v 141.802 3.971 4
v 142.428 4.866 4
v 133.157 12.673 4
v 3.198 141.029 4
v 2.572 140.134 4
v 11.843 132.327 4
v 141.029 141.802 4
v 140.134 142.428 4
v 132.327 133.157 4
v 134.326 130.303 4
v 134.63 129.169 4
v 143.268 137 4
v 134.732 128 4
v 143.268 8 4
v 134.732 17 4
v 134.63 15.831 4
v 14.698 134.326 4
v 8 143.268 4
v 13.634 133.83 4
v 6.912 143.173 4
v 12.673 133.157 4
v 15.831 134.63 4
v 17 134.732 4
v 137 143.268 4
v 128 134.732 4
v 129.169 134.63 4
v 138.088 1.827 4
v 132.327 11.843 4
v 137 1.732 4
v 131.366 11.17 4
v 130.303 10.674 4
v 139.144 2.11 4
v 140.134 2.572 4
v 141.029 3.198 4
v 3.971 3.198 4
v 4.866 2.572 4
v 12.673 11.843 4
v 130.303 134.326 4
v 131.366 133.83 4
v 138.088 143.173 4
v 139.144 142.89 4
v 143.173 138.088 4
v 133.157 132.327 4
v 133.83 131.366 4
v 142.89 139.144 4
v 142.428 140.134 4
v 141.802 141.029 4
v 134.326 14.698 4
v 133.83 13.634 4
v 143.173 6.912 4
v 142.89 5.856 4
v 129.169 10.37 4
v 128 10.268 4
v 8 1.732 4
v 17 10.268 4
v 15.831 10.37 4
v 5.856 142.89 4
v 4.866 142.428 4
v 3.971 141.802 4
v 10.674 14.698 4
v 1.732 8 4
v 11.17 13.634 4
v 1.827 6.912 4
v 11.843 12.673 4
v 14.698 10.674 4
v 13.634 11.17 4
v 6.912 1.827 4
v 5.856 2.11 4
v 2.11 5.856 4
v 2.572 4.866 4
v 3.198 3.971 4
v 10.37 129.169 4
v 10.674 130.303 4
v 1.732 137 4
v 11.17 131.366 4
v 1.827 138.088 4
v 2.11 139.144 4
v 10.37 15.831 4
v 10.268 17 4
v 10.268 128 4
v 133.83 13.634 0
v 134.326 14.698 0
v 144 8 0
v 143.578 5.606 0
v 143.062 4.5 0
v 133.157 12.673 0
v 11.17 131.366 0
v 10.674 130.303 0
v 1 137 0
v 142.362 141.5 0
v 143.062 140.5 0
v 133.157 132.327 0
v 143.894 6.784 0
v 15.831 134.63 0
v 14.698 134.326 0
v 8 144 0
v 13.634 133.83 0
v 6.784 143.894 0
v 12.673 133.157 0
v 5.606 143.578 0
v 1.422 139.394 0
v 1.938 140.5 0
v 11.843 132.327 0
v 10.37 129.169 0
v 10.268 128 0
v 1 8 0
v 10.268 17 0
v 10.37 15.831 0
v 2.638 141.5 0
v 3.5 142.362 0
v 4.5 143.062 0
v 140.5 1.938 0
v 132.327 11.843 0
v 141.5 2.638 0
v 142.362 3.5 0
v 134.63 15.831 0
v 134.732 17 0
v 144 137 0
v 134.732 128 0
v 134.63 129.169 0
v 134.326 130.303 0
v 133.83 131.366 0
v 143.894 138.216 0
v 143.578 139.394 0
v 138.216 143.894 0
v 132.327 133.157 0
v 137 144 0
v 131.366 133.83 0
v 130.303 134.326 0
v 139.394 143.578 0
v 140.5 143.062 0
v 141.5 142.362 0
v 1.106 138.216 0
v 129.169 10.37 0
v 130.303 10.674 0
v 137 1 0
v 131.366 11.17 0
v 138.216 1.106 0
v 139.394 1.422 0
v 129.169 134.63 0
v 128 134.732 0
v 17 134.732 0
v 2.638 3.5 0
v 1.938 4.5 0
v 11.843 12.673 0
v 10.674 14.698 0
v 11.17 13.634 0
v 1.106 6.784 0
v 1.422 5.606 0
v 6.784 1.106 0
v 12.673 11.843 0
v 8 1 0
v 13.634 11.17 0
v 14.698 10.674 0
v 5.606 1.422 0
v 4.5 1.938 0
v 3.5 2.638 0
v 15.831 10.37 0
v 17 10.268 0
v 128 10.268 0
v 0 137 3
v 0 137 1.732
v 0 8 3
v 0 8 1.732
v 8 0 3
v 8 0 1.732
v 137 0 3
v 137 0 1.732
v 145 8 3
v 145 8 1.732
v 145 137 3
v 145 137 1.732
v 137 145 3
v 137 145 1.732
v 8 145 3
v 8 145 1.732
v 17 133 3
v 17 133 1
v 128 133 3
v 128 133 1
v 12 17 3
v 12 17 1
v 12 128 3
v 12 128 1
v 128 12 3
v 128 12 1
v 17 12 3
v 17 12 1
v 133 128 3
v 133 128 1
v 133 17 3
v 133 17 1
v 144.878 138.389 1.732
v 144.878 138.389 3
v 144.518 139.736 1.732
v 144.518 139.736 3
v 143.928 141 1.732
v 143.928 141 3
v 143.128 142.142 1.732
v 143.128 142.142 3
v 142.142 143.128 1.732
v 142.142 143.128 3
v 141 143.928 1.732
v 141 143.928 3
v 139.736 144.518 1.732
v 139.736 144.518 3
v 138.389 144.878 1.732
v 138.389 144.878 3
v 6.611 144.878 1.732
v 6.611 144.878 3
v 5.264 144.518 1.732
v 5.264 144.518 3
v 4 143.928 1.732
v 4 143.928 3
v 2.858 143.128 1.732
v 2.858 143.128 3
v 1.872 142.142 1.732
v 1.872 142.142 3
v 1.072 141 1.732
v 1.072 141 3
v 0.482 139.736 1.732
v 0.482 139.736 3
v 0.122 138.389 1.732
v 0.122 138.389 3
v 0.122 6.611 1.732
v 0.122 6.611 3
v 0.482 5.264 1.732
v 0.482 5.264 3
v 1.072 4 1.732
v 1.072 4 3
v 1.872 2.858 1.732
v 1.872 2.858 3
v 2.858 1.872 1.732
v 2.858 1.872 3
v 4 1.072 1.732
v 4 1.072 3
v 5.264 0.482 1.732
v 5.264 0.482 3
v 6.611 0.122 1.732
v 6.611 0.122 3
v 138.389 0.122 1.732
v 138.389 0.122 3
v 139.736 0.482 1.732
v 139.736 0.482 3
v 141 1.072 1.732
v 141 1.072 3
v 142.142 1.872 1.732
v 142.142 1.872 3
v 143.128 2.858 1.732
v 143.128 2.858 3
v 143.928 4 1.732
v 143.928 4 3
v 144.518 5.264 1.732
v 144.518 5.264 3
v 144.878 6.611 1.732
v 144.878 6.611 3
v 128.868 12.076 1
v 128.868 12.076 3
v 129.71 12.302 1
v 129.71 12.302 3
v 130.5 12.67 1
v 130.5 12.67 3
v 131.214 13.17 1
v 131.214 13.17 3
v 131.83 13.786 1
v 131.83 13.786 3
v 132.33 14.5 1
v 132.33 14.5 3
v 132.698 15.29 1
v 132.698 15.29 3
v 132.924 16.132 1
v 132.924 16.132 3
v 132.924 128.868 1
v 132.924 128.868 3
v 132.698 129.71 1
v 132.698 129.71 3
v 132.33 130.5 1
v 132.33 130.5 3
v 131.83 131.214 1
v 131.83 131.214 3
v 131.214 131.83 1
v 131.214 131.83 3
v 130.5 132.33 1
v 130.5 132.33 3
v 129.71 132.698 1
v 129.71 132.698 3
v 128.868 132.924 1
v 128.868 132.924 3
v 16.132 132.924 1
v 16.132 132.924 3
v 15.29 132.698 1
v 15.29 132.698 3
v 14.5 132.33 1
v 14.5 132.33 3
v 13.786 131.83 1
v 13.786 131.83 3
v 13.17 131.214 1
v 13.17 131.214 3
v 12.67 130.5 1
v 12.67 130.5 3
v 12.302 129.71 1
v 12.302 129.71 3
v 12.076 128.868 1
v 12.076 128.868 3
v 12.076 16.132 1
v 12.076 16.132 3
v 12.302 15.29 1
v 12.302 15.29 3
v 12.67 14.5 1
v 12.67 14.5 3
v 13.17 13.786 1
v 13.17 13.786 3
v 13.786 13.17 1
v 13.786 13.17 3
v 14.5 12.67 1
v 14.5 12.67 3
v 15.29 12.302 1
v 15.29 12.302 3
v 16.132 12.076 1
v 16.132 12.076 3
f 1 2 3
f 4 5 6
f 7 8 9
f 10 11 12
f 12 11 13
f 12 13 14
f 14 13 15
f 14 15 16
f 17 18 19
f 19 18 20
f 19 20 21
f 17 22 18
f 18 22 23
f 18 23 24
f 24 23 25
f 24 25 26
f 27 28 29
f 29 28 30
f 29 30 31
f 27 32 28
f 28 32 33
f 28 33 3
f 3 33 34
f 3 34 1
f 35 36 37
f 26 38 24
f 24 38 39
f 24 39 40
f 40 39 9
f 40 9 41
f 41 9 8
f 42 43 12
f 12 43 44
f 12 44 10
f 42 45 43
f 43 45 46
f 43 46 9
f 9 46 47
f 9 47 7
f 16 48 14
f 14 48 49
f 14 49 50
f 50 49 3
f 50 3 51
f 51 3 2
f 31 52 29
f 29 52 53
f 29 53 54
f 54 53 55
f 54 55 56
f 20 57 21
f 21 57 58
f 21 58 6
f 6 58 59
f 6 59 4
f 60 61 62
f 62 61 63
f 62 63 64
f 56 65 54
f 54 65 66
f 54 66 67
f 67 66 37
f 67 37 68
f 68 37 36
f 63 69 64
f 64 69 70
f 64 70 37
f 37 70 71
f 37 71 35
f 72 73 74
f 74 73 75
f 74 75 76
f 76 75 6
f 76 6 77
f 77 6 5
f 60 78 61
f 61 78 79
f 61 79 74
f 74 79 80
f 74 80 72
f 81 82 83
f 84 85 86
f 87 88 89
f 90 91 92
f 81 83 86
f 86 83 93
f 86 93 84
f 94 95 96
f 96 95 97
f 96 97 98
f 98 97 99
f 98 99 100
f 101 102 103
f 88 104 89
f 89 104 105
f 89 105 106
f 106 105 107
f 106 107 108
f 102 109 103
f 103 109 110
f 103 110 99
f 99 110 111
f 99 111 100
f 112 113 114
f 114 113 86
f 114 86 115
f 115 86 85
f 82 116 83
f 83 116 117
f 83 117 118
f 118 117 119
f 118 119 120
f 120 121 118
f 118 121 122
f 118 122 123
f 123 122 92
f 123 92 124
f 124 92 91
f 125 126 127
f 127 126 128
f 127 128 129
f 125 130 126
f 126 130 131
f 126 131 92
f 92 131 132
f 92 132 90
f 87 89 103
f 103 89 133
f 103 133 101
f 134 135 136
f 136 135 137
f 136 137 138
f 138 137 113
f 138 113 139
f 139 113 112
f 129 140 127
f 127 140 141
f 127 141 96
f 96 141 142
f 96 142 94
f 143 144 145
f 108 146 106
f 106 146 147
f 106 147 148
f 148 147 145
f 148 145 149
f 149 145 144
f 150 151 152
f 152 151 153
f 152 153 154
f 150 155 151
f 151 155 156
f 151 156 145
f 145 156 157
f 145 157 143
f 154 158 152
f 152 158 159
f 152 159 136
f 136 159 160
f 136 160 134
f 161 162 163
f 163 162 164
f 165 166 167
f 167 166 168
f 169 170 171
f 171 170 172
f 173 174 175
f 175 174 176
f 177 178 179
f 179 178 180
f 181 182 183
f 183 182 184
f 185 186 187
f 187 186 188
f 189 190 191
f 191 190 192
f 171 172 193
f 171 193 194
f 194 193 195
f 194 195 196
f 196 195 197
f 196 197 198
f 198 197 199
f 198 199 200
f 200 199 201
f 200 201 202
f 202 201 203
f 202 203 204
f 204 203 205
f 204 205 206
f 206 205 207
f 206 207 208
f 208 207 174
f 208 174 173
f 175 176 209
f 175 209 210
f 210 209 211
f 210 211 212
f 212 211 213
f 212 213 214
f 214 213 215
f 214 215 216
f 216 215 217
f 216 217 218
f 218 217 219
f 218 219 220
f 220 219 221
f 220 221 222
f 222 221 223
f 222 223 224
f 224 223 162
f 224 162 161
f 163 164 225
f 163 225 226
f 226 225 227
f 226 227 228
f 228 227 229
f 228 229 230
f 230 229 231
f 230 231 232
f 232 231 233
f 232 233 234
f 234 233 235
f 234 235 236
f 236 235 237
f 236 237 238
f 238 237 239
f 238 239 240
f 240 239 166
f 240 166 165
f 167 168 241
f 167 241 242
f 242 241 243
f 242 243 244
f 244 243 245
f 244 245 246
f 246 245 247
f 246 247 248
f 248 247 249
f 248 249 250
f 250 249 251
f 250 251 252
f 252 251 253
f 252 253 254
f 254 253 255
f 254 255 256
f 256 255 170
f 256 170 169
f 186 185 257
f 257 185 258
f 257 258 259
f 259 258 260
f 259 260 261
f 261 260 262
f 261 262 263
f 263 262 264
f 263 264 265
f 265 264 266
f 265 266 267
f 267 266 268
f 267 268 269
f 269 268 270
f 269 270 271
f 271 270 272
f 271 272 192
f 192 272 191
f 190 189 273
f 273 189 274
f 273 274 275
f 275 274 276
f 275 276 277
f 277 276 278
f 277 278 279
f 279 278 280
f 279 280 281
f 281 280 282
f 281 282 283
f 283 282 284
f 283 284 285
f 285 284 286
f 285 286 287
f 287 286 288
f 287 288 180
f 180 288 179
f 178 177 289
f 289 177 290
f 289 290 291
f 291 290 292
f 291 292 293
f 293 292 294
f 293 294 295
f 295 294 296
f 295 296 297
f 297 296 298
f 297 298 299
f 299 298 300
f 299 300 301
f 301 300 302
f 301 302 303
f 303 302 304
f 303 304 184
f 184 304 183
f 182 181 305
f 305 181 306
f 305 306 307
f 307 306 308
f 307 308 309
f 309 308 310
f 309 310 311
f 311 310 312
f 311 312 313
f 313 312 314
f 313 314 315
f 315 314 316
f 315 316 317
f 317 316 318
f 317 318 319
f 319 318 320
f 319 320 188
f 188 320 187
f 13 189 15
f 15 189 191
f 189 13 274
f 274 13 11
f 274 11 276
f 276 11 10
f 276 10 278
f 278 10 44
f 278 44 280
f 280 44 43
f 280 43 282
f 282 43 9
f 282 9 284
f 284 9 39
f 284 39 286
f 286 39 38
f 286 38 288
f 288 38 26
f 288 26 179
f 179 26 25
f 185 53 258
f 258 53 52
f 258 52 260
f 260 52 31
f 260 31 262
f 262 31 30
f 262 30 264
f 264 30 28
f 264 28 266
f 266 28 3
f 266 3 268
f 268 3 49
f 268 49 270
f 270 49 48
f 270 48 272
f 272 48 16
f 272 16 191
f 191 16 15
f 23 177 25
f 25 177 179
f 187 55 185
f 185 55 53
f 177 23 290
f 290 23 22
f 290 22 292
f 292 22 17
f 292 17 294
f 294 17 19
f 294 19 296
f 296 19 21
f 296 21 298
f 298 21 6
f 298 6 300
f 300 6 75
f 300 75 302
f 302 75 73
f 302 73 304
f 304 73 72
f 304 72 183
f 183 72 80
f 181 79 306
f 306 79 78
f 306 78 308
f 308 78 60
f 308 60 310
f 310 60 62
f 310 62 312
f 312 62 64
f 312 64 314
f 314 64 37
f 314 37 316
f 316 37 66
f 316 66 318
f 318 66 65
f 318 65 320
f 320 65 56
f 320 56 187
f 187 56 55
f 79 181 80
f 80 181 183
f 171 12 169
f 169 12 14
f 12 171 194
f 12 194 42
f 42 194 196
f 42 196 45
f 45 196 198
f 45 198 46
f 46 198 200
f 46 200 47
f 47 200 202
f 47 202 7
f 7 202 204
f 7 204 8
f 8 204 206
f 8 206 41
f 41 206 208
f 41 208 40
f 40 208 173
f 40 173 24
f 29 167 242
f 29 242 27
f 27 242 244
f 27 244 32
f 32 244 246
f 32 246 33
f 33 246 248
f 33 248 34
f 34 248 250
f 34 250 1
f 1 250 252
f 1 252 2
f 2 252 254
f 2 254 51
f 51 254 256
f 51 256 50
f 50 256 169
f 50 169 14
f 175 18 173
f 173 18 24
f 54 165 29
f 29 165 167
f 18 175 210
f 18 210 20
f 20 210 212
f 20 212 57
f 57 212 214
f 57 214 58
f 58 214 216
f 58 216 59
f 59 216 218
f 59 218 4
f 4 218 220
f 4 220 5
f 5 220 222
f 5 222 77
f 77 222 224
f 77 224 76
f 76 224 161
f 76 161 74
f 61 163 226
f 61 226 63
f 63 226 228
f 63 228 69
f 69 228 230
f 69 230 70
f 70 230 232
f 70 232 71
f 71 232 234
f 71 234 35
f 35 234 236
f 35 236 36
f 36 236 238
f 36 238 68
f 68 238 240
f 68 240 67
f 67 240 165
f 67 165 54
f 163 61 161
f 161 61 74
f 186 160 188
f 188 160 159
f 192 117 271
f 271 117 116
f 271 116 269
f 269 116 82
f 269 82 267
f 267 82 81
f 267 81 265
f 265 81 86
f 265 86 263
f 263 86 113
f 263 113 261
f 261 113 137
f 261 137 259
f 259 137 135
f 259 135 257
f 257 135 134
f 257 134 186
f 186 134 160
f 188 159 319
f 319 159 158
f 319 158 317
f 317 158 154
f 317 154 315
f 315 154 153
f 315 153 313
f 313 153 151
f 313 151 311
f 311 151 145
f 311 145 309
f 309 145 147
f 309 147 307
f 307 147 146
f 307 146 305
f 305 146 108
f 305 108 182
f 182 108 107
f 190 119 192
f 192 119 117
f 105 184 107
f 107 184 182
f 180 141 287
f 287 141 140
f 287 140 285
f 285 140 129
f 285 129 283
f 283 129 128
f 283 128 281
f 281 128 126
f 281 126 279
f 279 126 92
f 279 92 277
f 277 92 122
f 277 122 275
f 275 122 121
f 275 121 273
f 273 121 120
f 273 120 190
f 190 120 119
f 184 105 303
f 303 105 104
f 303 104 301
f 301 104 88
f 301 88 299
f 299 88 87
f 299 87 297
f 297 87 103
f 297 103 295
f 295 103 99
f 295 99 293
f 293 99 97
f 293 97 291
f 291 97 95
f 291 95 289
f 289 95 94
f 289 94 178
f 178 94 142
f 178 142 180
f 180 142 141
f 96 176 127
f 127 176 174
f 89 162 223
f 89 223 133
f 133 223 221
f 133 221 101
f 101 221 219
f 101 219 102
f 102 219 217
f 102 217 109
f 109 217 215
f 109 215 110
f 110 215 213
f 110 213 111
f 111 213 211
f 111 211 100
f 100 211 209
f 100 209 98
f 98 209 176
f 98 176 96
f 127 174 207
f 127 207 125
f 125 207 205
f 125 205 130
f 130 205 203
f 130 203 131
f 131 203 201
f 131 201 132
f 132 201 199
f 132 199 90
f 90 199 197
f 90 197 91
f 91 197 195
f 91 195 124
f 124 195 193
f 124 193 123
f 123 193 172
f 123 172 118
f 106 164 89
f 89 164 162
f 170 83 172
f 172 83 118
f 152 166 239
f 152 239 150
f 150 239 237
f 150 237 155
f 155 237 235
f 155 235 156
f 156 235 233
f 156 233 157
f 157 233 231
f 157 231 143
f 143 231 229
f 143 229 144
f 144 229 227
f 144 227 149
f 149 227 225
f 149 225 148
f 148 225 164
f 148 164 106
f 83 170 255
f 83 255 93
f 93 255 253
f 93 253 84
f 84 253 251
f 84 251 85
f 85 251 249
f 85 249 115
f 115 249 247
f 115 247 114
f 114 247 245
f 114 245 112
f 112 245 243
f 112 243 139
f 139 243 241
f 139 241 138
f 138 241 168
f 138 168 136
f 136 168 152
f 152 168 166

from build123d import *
from OCP.BRepFilletAPI import BRepFilletAPI_MakeChamfer

# Parameters (mm, degrees)
ESQUISSE1_W        = 145
ESQUISSE1_H        = 145
ESQUISSE1_W_2      = 121
ESQUISSE1_H_2      = 121
BOSS_EXTRU_1_DEPTH = 4
CONG_3_R           = 8
CONG_4_R           = 5
CHANFREIN1_SIZE    = 1
CHANFREIN1_SIZE2   = 1.732050808


with BuildPart() as part:
    # Esquisse1 → Boss.-Extru.1 (new body)
    with BuildSketch(Plane.XY):
        with Locations((72.5, 72.5)):
            Rectangle(ESQUISSE1_W, ESQUISSE1_H)
        with Locations((72.5, 72.5)):
            Rectangle(ESQUISSE1_W_2, ESQUISSE1_H_2, mode=Mode.SUBTRACT)
    extrude(amount=BOSS_EXTRU_1_DEPTH)

    # Congé3
    cong_3_edges = [part.edges().sort_by_distance(p)[0] for p in [
        (0, 145, 2),
        (145, 145, 2),
        (145, 0, 2),
        (0, 0, 2),
    ]]
    fillet(cong_3_edges, radius=CONG_3_R)

    # Congé4
    cong_4_edges = [part.edges().sort_by_distance(p)[0] for p in [
        (133, 133, 2),
        (12, 133, 2),
        (12, 12, 2),
        (133, 12, 2),
    ]]
    fillet(cong_4_edges, radius=CONG_4_R)

    # Chanfrein1: one chamfer whose edges measure the first distance from different faces: ONE call of the kernel's chamfer builder (chamfer() names one face for all edges)
    chanfrein1_edges_1 = [part.edges().sort_by_distance(p)[0] for p in [
        (72.5, 145, 0),
        (0, 72.5, 0),
        (145, 72.5, 0),
        (72.5, 0, 0),
        (142.656854249, 2.343145751, 0),
        (2.343145751, 2.343145751, 0),
        (2.343145751, 142.656854249, 0),
        (142.656854249, 142.656854249, 0),
    ]]
    chanfrein1_side_1 = [part.faces().sort_by_distance(p)[0] for p in [
        (72.5, 9.949390335, 0),
    ]]
    chanfrein1_edges_2 = [part.edges().sort_by_distance(p)[0] for p in [
        (72.5, 145, 4),
    ]]
    chanfrein1_side_2 = [part.faces().sort_by_distance(p)[0] for p in [
        (72.5, 145, 2),
    ]]
    chanfrein1_edges_3 = [part.edges().sort_by_distance(p)[0] for p in [
        (145, 72.5, 4),
    ]]
    chanfrein1_side_3 = [part.faces().sort_by_distance(p)[0] for p in [
        (145, 72.5, 2),
    ]]
    chanfrein1_edges_4 = [part.edges().sort_by_distance(p)[0] for p in [
        (0, 72.5, 4),
    ]]
    chanfrein1_side_4 = [part.faces().sort_by_distance(p)[0] for p in [
        (0, 72.5, 2),
    ]]
    chanfrein1_edges_5 = [part.edges().sort_by_distance(p)[0] for p in [
        (72.5, 0, 4),
    ]]
    chanfrein1_side_5 = [part.faces().sort_by_distance(p)[0] for p in [
        (72.5, 0, 2),
    ]]
    chanfrein1_edges_6 = [part.edges().sort_by_distance(p)[0] for p in [
        (142.656854249, 2.343145751, 4),
    ]]
    chanfrein1_side_6 = [part.faces().sort_by_distance(p)[0] for p in [
        (142.656854249, 2.343145751, 2),
    ]]
    chanfrein1_edges_7 = [part.edges().sort_by_distance(p)[0] for p in [
        (2.343145751, 2.343145751, 4),
    ]]
    chanfrein1_side_7 = [part.faces().sort_by_distance(p)[0] for p in [
        (2.343145751, 2.343145751, 2),
    ]]
    chanfrein1_edges_8 = [part.edges().sort_by_distance(p)[0] for p in [
        (2.343145751, 142.656854249, 4),
    ]]
    chanfrein1_side_8 = [part.faces().sort_by_distance(p)[0] for p in [
        (2.343145751, 142.656854249, 2),
    ]]
    chanfrein1_edges_9 = [part.edges().sort_by_distance(p)[0] for p in [
        (142.656854249, 142.656854249, 4),
    ]]
    chanfrein1_side_9 = [part.faces().sort_by_distance(p)[0] for p in [
        (142.656854249, 142.656854249, 2),
    ]]
    chanfrein1_edges_10 = [part.edges().sort_by_distance(p)[0] for p in [
        (72.5, 12, 0),
        (72.5, 12, 4),
    ]]
    chanfrein1_side_10 = [part.faces().sort_by_distance(p)[0] for p in [
        (72.5, 12, 2),
    ]]
    chanfrein1_edges_11 = [part.edges().sort_by_distance(p)[0] for p in [
        (133, 72.5, 0),
        (133, 72.5, 4),
    ]]
    chanfrein1_side_11 = [part.faces().sort_by_distance(p)[0] for p in [
        (133, 72.5, 2),
    ]]
    chanfrein1_edges_12 = [part.edges().sort_by_distance(p)[0] for p in [
        (72.5, 133, 0),
        (72.5, 133, 4),
    ]]
    chanfrein1_side_12 = [part.faces().sort_by_distance(p)[0] for p in [
        (72.5, 133, 2),
    ]]
    chanfrein1_edges_13 = [part.edges().sort_by_distance(p)[0] for p in [
        (12, 72.5, 0),
        (12, 72.5, 4),
    ]]
    chanfrein1_side_13 = [part.faces().sort_by_distance(p)[0] for p in [
        (12, 72.5, 2),
    ]]
    chanfrein1_edges_14 = [part.edges().sort_by_distance(p)[0] for p in [
        (131.535533906, 13.464466094, 0),
        (131.535533906, 13.464466094, 4),
    ]]
    chanfrein1_side_14 = [part.faces().sort_by_distance(p)[0] for p in [
        (131.535533906, 13.464466094, 2),
    ]]
    chanfrein1_edges_15 = [part.edges().sort_by_distance(p)[0] for p in [
        (131.535533906, 131.535533906, 0),
        (131.535533906, 131.535533906, 4),
    ]]
    chanfrein1_side_15 = [part.faces().sort_by_distance(p)[0] for p in [
        (131.535533906, 131.535533906, 2),
    ]]
    chanfrein1_edges_16 = [part.edges().sort_by_distance(p)[0] for p in [
        (13.464466094, 131.535533906, 0),
        (13.464466094, 131.535533906, 4),
    ]]
    chanfrein1_side_16 = [part.faces().sort_by_distance(p)[0] for p in [
        (13.464466094, 131.535533906, 2),
    ]]
    chanfrein1_edges_17 = [part.edges().sort_by_distance(p)[0] for p in [
        (13.464466094, 13.464466094, 0),
        (13.464466094, 13.464466094, 4),
    ]]
    chanfrein1_side_17 = [part.faces().sort_by_distance(p)[0] for p in [
        (13.464466094, 13.464466094, 2),
    ]]
    chanfrein1 = BRepFilletAPI_MakeChamfer(part.part.solid().wrapped)
    for e in chanfrein1_edges_1:
        chanfrein1.Add(CHANFREIN1_SIZE, CHANFREIN1_SIZE2, e.wrapped, chanfrein1_side_1[0].wrapped)  # the first distance lies on this face
    for e in chanfrein1_edges_2:
        chanfrein1.Add(CHANFREIN1_SIZE, CHANFREIN1_SIZE2, e.wrapped, chanfrein1_side_2[0].wrapped)  # the first distance lies on this face
    for e in chanfrein1_edges_3:
        chanfrein1.Add(CHANFREIN1_SIZE, CHANFREIN1_SIZE2, e.wrapped, chanfrein1_side_3[0].wrapped)  # the first distance lies on this face
    for e in chanfrein1_edges_4:
        chanfrein1.Add(CHANFREIN1_SIZE, CHANFREIN1_SIZE2, e.wrapped, chanfrein1_side_4[0].wrapped)  # the first distance lies on this face
    for e in chanfrein1_edges_5:
        chanfrein1.Add(CHANFREIN1_SIZE, CHANFREIN1_SIZE2, e.wrapped, chanfrein1_side_5[0].wrapped)  # the first distance lies on this face
    for e in chanfrein1_edges_6:
        chanfrein1.Add(CHANFREIN1_SIZE, CHANFREIN1_SIZE2, e.wrapped, chanfrein1_side_6[0].wrapped)  # the first distance lies on this face
    for e in chanfrein1_edges_7:
        chanfrein1.Add(CHANFREIN1_SIZE, CHANFREIN1_SIZE2, e.wrapped, chanfrein1_side_7[0].wrapped)  # the first distance lies on this face
    for e in chanfrein1_edges_8:
        chanfrein1.Add(CHANFREIN1_SIZE, CHANFREIN1_SIZE2, e.wrapped, chanfrein1_side_8[0].wrapped)  # the first distance lies on this face
    for e in chanfrein1_edges_9:
        chanfrein1.Add(CHANFREIN1_SIZE, CHANFREIN1_SIZE2, e.wrapped, chanfrein1_side_9[0].wrapped)  # the first distance lies on this face
    for e in chanfrein1_edges_10:
        chanfrein1.Add(CHANFREIN1_SIZE, CHANFREIN1_SIZE2, e.wrapped, chanfrein1_side_10[0].wrapped)  # the first distance lies on this face
    for e in chanfrein1_edges_11:
        chanfrein1.Add(CHANFREIN1_SIZE, CHANFREIN1_SIZE2, e.wrapped, chanfrein1_side_11[0].wrapped)  # the first distance lies on this face
    for e in chanfrein1_edges_12:
        chanfrein1.Add(CHANFREIN1_SIZE, CHANFREIN1_SIZE2, e.wrapped, chanfrein1_side_12[0].wrapped)  # the first distance lies on this face
    for e in chanfrein1_edges_13:
        chanfrein1.Add(CHANFREIN1_SIZE, CHANFREIN1_SIZE2, e.wrapped, chanfrein1_side_13[0].wrapped)  # the first distance lies on this face
    for e in chanfrein1_edges_14:
        chanfrein1.Add(CHANFREIN1_SIZE, CHANFREIN1_SIZE2, e.wrapped, chanfrein1_side_14[0].wrapped)  # the first distance lies on this face
    for e in chanfrein1_edges_15:
        chanfrein1.Add(CHANFREIN1_SIZE, CHANFREIN1_SIZE2, e.wrapped, chanfrein1_side_15[0].wrapped)  # the first distance lies on this face
    for e in chanfrein1_edges_16:
        chanfrein1.Add(CHANFREIN1_SIZE, CHANFREIN1_SIZE2, e.wrapped, chanfrein1_side_16[0].wrapped)  # the first distance lies on this face
    for e in chanfrein1_edges_17:
        chanfrein1.Add(CHANFREIN1_SIZE, CHANFREIN1_SIZE2, e.wrapped, chanfrein1_side_17[0].wrapped)  # the first distance lies on this face
    add(Compound.cast(chanfrein1.Shape()), mode=Mode.REPLACE)


solid = part.part
